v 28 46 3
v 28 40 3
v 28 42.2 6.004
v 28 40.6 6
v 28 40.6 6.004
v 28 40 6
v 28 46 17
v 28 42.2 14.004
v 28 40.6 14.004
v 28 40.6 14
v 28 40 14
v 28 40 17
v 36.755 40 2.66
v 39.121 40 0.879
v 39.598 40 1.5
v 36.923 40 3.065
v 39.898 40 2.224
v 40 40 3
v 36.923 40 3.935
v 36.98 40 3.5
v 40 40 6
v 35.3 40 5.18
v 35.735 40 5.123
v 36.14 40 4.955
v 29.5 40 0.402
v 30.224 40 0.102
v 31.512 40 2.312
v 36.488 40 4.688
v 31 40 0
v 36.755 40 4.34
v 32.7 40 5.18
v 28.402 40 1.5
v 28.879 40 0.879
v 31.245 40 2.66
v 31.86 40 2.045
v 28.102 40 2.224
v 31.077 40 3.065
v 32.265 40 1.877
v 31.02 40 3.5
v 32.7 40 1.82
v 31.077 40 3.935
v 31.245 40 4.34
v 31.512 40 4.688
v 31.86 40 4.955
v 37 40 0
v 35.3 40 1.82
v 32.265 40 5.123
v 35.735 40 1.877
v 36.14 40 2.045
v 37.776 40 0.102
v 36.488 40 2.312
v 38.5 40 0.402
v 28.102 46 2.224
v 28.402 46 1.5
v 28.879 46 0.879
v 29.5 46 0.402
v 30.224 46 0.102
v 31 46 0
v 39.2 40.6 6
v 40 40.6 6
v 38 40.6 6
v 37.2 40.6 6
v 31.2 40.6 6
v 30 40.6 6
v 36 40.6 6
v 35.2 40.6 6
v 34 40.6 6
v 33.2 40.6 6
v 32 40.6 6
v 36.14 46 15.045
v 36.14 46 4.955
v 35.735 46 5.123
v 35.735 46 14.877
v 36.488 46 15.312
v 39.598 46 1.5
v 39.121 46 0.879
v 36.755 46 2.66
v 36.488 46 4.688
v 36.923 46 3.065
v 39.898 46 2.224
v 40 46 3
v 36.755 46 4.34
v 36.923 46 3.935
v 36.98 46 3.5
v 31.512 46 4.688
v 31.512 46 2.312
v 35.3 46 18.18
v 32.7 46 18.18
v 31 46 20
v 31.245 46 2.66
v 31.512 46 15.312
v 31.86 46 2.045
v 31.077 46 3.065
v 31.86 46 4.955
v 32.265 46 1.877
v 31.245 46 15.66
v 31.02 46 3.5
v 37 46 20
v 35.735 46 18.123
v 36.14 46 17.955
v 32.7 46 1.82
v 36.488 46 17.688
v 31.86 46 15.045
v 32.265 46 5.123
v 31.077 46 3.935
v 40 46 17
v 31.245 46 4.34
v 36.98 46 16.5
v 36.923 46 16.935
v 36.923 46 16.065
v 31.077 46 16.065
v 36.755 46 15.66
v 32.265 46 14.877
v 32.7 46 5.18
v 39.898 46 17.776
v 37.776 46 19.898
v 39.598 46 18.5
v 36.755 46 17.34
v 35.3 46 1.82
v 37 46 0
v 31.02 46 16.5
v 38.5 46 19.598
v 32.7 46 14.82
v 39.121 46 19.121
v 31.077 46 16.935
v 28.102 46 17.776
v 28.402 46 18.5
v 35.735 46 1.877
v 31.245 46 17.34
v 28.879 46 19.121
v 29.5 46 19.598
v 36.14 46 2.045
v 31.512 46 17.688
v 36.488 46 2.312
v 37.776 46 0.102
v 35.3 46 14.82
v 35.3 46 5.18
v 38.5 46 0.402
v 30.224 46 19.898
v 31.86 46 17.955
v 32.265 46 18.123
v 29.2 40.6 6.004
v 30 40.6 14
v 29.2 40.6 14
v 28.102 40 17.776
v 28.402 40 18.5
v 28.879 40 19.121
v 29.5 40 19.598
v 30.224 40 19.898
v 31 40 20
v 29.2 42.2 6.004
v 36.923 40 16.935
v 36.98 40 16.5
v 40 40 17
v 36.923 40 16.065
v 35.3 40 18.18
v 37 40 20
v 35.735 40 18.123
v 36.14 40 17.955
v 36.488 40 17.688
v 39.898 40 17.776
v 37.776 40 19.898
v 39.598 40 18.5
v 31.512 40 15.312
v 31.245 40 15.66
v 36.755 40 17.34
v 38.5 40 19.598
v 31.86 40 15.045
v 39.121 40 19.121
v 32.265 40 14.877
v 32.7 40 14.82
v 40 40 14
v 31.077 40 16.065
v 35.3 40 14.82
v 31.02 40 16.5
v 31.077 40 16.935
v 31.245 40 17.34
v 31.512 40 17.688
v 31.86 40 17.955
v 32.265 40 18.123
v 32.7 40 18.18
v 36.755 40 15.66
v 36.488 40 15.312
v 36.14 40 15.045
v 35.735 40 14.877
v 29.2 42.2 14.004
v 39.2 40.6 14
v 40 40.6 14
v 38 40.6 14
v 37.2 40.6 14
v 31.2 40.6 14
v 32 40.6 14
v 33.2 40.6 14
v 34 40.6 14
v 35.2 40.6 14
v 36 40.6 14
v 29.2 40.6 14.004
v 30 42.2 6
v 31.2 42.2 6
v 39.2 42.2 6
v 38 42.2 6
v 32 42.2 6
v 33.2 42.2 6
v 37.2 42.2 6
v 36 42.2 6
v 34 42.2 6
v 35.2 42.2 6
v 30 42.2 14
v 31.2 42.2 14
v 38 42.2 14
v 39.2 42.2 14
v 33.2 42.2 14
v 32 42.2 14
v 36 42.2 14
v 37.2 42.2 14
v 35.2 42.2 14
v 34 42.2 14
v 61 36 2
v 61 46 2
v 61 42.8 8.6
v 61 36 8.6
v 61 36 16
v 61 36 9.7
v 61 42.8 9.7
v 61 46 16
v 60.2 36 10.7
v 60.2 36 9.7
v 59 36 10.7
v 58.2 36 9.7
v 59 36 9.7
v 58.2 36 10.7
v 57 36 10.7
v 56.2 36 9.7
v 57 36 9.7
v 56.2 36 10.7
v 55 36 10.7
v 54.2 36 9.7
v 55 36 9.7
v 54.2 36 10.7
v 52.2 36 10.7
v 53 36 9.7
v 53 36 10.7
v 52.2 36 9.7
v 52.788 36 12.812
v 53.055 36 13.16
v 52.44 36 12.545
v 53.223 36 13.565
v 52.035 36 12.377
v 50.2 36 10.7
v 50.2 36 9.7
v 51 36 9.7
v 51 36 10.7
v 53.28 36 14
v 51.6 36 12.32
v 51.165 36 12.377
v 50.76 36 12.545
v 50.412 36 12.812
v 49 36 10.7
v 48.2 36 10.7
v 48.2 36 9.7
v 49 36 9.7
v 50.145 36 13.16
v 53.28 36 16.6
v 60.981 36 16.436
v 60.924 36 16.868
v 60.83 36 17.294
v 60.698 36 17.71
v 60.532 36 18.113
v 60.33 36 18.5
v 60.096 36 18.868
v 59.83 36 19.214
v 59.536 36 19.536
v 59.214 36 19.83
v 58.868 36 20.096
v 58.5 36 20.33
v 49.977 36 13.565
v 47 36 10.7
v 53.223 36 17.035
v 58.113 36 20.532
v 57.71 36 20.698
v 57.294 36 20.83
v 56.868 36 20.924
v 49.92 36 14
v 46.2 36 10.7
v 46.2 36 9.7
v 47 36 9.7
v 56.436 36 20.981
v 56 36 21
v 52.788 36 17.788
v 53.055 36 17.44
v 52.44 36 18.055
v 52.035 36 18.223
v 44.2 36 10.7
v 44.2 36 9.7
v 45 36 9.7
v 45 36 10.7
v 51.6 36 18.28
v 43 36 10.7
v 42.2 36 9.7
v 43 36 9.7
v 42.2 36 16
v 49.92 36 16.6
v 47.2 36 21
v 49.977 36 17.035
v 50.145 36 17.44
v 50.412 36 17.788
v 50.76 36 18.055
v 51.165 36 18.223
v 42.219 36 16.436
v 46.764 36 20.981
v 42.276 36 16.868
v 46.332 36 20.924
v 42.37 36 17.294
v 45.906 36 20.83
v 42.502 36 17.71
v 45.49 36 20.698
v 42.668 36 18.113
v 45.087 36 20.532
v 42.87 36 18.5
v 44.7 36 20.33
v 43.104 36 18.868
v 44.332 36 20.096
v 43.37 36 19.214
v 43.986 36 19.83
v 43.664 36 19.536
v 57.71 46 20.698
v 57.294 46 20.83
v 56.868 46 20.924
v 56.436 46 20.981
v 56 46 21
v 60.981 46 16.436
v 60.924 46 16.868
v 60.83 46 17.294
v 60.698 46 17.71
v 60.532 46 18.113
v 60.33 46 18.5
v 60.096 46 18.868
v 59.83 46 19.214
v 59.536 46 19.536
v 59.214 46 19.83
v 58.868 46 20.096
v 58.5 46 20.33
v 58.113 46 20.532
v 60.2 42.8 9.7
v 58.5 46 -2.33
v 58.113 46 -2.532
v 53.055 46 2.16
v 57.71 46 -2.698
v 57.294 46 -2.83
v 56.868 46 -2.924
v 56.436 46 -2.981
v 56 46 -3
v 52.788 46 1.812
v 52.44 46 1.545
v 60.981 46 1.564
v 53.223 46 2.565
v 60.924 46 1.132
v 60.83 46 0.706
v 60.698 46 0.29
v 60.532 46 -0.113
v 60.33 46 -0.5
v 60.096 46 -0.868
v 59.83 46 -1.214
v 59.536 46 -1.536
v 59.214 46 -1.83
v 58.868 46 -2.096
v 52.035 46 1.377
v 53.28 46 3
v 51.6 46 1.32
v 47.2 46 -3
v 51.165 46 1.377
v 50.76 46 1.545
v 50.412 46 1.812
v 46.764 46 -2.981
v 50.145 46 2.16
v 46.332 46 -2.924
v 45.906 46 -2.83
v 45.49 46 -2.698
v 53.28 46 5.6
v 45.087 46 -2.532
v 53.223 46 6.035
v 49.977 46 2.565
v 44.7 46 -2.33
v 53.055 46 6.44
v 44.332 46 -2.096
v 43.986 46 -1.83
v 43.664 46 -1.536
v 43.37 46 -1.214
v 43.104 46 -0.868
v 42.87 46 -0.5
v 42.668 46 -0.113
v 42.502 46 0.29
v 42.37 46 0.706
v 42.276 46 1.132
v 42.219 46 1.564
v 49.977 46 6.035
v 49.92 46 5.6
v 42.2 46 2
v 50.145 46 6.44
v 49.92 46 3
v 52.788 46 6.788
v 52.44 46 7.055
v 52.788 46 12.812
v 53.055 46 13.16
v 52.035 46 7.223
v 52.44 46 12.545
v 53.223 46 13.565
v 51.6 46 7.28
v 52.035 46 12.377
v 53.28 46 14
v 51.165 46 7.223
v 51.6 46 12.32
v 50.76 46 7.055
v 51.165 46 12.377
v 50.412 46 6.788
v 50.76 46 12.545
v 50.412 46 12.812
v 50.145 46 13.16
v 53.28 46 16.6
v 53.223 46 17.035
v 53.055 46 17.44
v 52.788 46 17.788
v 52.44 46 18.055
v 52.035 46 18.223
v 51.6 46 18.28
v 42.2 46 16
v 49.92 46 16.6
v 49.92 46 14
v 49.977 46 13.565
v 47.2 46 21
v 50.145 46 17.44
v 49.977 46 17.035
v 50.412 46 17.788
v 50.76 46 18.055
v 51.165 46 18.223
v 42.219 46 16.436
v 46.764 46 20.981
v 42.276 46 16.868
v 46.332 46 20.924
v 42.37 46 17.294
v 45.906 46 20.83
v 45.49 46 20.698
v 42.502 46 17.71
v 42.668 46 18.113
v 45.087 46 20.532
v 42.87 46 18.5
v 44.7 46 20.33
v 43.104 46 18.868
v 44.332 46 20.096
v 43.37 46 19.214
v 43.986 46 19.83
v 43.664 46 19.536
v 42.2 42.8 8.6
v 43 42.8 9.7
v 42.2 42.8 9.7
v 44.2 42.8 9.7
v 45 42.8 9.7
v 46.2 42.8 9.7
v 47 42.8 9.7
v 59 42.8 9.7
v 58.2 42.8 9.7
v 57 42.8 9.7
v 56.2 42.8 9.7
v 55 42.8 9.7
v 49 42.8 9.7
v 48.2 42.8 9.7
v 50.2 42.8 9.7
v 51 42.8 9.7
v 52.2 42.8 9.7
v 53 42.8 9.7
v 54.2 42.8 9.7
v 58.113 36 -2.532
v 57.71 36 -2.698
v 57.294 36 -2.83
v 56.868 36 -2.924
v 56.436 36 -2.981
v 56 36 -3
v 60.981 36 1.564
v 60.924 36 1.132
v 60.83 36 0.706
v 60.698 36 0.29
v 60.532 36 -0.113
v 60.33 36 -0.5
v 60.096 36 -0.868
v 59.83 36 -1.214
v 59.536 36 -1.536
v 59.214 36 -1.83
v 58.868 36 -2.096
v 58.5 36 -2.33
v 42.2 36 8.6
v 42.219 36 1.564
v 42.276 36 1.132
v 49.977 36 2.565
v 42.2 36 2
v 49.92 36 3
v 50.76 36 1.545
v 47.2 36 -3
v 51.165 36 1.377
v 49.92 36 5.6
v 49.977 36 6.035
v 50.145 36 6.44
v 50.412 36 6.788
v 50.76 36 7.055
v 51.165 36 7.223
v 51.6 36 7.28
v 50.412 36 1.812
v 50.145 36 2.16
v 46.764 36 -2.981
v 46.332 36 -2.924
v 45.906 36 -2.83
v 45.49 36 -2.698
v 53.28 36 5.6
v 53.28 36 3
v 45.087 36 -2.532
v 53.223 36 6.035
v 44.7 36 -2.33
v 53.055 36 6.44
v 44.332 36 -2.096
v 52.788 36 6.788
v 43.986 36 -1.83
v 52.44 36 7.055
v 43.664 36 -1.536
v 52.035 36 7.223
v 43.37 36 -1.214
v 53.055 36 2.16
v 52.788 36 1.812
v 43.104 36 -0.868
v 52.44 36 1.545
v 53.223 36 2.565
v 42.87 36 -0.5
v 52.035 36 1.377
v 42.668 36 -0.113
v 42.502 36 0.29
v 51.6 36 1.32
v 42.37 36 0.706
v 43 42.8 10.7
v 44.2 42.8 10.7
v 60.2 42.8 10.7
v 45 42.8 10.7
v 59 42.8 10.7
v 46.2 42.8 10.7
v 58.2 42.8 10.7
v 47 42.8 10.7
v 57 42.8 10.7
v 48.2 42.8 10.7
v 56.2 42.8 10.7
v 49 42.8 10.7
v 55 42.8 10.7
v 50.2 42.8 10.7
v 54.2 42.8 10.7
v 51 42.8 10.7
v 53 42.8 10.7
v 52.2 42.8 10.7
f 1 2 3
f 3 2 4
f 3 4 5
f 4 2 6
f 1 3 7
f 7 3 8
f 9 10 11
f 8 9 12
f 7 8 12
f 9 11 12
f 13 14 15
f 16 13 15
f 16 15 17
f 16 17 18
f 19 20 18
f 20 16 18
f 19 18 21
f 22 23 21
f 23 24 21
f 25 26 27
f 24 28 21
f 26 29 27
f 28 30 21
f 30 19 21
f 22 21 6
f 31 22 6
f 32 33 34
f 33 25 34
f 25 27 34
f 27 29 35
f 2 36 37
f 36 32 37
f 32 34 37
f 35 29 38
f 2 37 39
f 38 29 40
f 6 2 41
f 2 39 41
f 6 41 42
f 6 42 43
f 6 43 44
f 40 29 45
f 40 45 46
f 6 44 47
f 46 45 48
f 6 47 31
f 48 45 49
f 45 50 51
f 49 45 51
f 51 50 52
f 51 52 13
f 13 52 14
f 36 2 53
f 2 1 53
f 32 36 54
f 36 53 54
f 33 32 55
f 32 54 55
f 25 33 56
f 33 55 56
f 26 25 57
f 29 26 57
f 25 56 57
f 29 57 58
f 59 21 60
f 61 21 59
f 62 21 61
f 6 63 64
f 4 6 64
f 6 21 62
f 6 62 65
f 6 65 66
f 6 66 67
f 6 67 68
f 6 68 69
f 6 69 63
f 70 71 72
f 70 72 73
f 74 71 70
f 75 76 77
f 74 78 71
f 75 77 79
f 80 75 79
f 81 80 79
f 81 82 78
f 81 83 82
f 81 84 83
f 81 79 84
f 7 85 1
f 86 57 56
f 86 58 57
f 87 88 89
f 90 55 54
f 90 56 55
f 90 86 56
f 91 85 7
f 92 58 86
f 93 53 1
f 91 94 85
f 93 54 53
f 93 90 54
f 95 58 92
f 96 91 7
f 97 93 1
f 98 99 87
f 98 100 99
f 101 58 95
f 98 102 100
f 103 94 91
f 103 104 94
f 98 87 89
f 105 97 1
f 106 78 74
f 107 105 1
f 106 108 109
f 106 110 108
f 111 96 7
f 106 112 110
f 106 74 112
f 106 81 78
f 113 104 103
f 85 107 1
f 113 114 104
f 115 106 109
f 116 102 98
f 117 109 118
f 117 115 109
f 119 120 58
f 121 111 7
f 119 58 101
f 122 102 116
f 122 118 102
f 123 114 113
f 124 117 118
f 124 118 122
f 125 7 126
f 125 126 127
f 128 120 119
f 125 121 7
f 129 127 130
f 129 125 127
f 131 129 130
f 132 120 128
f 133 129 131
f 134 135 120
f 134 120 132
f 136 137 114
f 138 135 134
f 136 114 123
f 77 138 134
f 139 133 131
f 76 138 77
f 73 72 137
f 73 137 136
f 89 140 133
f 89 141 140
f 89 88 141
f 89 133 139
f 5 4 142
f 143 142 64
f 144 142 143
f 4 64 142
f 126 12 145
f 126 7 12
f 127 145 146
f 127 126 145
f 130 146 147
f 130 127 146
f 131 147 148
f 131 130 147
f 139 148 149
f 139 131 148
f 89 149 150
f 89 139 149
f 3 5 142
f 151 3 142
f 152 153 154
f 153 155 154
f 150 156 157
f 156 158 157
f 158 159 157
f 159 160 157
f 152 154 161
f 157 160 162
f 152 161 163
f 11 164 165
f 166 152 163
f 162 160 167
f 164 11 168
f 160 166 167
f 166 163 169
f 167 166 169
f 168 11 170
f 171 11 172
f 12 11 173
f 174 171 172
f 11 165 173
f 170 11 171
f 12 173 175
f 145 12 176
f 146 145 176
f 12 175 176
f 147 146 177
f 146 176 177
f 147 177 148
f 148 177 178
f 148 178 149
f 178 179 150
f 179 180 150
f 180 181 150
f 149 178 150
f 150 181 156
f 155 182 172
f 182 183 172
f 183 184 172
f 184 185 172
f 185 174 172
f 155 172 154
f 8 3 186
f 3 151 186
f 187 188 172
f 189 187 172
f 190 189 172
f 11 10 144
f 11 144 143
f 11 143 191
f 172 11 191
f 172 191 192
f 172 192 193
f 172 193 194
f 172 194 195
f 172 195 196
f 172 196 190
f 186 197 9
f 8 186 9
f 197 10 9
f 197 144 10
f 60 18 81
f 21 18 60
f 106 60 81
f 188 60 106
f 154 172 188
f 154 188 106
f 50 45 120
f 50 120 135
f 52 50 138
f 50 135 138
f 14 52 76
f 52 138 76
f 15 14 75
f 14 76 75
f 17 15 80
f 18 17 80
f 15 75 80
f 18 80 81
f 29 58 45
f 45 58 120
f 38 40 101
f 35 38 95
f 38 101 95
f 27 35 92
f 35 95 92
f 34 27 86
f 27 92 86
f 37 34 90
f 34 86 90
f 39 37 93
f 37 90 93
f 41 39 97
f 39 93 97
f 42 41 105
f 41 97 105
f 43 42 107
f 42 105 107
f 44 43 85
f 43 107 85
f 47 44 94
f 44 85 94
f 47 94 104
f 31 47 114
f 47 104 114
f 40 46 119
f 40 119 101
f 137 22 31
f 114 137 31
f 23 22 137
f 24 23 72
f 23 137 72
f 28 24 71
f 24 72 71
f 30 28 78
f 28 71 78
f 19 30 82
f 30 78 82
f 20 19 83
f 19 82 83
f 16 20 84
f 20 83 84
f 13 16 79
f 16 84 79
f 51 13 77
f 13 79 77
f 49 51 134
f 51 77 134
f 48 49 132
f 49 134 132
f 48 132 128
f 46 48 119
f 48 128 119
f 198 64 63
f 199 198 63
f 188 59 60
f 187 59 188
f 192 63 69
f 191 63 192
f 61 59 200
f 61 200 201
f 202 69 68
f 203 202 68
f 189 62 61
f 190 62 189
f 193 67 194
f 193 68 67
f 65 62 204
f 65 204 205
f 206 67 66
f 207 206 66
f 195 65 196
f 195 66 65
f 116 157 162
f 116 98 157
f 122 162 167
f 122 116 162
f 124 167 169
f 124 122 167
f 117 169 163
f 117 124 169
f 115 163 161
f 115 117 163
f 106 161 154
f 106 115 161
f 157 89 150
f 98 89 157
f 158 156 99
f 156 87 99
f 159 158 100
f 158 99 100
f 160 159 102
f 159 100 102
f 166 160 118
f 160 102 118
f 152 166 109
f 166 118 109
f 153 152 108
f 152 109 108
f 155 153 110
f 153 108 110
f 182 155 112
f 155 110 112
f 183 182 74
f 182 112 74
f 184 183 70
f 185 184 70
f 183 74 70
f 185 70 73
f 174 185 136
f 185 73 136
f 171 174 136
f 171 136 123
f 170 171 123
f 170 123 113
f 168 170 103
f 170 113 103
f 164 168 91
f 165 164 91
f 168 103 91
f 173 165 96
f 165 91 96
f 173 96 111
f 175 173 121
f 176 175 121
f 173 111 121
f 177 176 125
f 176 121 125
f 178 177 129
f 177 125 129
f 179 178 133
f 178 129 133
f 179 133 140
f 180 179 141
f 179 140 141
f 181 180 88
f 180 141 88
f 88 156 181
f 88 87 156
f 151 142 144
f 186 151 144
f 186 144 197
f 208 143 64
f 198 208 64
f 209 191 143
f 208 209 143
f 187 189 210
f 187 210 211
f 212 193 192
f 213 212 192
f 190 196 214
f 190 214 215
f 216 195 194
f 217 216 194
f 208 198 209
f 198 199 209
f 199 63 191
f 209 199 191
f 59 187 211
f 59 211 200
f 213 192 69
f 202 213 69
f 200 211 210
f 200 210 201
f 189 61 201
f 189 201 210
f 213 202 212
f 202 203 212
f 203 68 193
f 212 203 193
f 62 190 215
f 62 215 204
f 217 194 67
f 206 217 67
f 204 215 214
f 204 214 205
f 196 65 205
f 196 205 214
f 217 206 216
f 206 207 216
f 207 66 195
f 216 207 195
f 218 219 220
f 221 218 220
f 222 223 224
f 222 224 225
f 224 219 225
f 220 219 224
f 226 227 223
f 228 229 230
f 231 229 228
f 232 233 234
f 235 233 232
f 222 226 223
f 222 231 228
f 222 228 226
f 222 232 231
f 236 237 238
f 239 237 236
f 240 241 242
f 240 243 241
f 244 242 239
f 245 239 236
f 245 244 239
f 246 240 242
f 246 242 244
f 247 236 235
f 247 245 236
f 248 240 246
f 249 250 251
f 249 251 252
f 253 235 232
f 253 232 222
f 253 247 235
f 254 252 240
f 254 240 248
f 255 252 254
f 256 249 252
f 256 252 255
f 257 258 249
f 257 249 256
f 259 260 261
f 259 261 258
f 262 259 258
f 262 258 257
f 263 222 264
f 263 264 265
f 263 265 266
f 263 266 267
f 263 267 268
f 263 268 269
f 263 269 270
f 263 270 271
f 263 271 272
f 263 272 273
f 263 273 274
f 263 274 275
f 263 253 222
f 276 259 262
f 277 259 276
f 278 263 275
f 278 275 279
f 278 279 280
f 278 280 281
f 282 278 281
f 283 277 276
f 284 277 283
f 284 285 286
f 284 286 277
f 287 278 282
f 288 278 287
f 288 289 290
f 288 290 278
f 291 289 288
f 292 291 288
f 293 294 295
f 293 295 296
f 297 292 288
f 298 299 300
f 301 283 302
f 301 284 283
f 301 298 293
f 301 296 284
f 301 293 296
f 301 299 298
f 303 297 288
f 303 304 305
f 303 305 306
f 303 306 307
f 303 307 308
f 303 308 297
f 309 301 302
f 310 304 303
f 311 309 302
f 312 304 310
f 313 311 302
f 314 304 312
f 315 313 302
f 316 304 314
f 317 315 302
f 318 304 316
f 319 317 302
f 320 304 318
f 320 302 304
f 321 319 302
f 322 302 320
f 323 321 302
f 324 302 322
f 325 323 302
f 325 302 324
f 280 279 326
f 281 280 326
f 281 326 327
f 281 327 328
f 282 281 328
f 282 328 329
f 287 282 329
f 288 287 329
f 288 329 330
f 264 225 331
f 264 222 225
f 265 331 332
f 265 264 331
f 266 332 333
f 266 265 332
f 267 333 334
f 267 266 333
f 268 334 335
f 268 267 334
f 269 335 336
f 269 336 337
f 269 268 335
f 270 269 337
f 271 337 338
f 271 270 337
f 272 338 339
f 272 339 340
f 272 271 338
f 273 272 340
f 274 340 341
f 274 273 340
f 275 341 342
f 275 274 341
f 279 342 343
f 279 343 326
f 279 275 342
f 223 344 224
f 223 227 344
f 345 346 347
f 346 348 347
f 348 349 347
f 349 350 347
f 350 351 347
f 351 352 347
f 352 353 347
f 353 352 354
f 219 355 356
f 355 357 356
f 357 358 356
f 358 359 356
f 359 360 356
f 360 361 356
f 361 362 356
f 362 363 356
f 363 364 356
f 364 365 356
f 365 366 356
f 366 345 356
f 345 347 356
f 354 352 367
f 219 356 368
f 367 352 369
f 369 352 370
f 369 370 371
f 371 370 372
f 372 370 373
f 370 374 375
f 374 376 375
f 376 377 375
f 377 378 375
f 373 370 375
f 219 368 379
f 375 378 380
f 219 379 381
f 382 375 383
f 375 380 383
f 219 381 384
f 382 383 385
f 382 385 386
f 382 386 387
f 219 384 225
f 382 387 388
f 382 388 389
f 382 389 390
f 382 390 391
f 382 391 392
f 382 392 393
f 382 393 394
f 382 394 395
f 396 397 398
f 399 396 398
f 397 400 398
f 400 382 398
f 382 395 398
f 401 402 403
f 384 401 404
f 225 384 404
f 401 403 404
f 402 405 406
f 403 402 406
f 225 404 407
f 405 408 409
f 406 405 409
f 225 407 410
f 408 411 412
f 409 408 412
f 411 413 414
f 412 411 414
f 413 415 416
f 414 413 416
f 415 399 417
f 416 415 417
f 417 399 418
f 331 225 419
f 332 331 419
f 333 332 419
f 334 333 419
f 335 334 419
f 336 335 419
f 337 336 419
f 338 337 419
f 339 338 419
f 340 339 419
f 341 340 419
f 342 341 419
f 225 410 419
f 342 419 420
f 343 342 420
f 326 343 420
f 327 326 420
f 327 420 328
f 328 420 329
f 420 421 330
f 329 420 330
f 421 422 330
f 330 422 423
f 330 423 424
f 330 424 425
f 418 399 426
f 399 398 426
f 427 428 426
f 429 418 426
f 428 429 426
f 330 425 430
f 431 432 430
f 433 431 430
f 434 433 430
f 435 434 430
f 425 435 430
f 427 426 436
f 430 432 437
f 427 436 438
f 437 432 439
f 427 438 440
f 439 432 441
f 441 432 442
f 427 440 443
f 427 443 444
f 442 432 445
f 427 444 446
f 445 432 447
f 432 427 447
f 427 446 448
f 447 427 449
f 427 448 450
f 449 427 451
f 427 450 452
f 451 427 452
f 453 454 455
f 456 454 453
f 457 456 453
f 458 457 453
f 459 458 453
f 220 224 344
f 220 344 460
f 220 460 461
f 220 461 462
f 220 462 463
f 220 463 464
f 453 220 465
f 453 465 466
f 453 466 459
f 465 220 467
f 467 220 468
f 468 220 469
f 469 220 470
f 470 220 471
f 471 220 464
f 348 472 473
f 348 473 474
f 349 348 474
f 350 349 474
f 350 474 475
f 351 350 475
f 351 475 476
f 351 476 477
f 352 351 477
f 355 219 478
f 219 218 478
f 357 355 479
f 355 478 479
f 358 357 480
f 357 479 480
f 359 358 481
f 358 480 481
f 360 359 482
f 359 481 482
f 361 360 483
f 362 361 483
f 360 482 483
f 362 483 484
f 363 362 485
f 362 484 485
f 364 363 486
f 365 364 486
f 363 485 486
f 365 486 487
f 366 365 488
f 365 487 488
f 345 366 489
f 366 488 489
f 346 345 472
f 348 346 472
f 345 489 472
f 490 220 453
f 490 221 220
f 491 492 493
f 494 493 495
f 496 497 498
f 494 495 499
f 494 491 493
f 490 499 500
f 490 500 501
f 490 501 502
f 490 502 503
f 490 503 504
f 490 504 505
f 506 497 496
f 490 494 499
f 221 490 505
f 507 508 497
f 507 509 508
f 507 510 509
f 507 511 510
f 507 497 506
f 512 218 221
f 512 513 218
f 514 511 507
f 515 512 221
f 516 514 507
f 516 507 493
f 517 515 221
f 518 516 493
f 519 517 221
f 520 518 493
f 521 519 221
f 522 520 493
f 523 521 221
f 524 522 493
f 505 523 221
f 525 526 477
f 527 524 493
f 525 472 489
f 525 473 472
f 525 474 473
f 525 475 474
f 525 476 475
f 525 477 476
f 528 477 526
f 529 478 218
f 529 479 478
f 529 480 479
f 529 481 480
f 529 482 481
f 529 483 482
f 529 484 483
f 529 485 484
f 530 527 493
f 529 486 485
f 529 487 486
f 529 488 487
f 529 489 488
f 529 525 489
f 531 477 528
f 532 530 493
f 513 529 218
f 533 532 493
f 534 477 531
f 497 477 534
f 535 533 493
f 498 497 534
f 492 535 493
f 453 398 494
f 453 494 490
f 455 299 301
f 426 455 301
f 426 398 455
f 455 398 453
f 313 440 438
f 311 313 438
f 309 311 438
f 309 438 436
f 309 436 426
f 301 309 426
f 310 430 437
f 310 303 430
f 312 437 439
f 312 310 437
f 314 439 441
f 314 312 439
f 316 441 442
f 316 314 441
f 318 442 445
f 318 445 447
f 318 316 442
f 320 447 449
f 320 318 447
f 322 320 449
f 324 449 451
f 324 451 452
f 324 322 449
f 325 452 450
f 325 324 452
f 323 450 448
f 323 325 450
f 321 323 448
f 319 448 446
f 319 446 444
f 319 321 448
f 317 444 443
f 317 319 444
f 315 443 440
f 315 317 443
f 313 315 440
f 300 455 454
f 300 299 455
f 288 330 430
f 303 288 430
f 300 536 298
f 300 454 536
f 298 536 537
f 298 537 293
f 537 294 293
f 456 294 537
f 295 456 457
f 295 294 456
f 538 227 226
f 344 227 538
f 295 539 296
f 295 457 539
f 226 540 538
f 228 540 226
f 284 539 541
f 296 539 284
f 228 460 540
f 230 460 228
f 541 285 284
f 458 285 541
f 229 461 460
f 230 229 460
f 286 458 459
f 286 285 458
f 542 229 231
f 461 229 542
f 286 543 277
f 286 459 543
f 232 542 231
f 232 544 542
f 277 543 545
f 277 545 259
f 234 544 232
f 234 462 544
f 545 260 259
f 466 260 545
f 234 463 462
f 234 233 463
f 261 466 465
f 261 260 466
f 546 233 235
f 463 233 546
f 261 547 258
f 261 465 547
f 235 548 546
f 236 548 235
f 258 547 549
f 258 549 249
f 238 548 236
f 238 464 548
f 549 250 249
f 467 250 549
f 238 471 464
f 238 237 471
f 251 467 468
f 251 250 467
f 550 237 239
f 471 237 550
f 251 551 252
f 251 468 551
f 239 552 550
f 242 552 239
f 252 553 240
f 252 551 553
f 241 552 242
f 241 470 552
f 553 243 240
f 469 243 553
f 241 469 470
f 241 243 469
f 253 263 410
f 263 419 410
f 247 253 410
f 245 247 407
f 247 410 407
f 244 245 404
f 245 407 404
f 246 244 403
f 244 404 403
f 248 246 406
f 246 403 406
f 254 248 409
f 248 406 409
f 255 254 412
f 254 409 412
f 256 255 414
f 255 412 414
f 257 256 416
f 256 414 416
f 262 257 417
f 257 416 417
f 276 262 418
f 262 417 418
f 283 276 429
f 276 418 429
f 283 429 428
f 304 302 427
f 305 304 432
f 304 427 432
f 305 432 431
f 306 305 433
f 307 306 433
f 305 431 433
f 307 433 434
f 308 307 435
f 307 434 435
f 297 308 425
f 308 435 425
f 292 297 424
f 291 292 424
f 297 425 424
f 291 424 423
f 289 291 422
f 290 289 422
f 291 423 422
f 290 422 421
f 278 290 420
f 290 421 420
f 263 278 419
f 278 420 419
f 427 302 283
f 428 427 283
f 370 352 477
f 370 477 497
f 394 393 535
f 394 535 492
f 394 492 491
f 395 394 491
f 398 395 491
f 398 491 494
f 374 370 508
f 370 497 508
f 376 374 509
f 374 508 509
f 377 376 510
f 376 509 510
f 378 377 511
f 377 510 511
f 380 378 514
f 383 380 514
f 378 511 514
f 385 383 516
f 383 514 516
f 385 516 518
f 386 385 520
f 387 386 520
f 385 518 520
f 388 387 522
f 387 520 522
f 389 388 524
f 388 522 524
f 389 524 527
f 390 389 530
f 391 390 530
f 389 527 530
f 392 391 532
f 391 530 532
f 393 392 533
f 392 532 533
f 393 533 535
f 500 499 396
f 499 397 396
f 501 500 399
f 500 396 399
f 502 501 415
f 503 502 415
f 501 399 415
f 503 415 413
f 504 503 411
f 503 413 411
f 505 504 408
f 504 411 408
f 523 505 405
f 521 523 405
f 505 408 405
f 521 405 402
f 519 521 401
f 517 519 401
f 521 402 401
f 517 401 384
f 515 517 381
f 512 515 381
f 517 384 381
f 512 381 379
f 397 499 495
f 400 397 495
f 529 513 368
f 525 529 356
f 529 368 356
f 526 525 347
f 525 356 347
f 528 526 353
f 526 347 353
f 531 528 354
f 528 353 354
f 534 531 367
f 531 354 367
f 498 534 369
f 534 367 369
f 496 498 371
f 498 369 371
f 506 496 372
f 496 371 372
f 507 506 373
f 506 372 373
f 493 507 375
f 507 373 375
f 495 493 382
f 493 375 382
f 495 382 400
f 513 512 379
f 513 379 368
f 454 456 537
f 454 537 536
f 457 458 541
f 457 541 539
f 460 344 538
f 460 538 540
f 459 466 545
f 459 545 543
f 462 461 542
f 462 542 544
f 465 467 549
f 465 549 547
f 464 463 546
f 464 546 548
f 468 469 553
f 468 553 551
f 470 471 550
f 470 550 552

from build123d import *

# Parameters (mm, degrees)
BOX002_W        = 12
BOX002_H        = 6
BOX002_DEPTH    = 20
POCKET015_DEPTH = 6.001
SKETCH013_W     = 0.6
SKETCH013_H     = 8
POCKET016_DEPTH = 12.001
SKETCH011_W     = 1.2
SKETCH011_H     = 8
POCKET017_DEPTH = 1.6
FILLET006_R     = 3
BOX003_W        = 18.8
BOX003_H        = 10
BOX003_DEPTH    = 24
POCKET_DEPTH    = 10.001
SKETCH014_W     = 20.407059
SKETCH014_H     = 1.1
POCKET013_DEPTH = 6.8
SKETCH015_W     = 1.2
SKETCH015_H     = 7
POCKET014_DEPTH = 1
FILLET_R        = 5


with BuildPart() as fillet006:
    # Box002 → Box002 (new body)
    with BuildSketch(Plane(origin=(28, 40, 0), x_dir=(1, 0, 0), z_dir=(0, 0, 1))):
        with Locations((6, 3)):
            Rectangle(BOX002_W, BOX002_H)
    extrude(amount=BOX002_DEPTH)

    # Sketch012 → Pocket015 (cut, through all)
    with BuildSketch(Plane(origin=(28, 46, 0), x_dir=(-1, 0, 0), z_dir=(0, 1, 0))):
        with BuildLine():
            ThreePointArc((-7.3, 18.18), (-8.98, 16.5), (-7.3, 14.82))
            Line((-7.3, 14.82), (-4.7, 14.82))
            ThreePointArc((-4.7, 14.82), (-3.02, 16.5), (-4.7, 18.18))
            Line((-7.3, 18.18), (-4.7, 18.18))
        make_face()
        with BuildLine():
            ThreePointArc((-7.3, 5.18), (-8.98, 3.5), (-7.3, 1.82))
            Line((-7.3, 1.82), (-4.7, 1.82))
            ThreePointArc((-4.7, 1.82), (-3.02, 3.5), (-4.7, 5.18))
            Line((-7.3, 5.18), (-4.7, 5.18))
        make_face()
    extrude(amount=-POCKET015_DEPTH, mode=Mode.SUBTRACT)

    # Sketch013 → Pocket016 (cut, through all)
    with BuildSketch(Plane(origin=(28, 40, 0), x_dir=(0, -1, 0), z_dir=(-1, 0, 0))):
        with Locations((-0.3, 10)):
            Rectangle(SKETCH013_W, SKETCH013_H)
    extrude(amount=-POCKET016_DEPTH, mode=Mode.SUBTRACT)

    # Sketch011 → Pocket017 (cut)
    with BuildSketch(Plane(origin=(28, 40.6, 0), x_dir=(1, 0, 0), z_dir=(0, -1, 0))):
        with Locations((6.599989, 10)):
            Rectangle(SKETCH011_W, SKETCH011_H)
        with Locations((4.599989, 10)):
            Rectangle(SKETCH011_W, SKETCH011_H)
        with Locations((2.599989, 10)):
            Rectangle(SKETCH011_W, SKETCH011_H)
        with Locations((0.6, 10.00427)):
            Rectangle(SKETCH011_W, SKETCH011_H)
        with Locations((8.599989, 10)):
            Rectangle(SKETCH011_W, SKETCH011_H)
        with Locations((10.599989, 10)):
            Rectangle(SKETCH011_W, SKETCH011_H)
    extrude(amount=-POCKET017_DEPTH, mode=Mode.SUBTRACT)

    # Fillet006
    fillet006_edges = [fillet006.edges().sort_by_distance(p)[0] for p in [
        (28, 43, 20),
        (28, 43, 0),
        (40, 43, 20),
        (40, 43, 0),
    ]]
    fillet(fillet006_edges, radius=FILLET006_R)


with BuildPart() as fillet_body:
    # Box003 → Box003 (new body)
    with BuildSketch(Plane(origin=(61, 46, -3), x_dir=(-1, 0, 0), z_dir=(0, 0, 1))):
        with Locations((9.4, 5)):
            Rectangle(BOX003_W, BOX003_H)
    extrude(amount=BOX003_DEPTH)

    # Sketch → Pocket (cut, through all)
    with BuildSketch(Plane(origin=(61, 46, -3), x_dir=(-1, 0, 0), z_dir=(0, 1, 0))):
        with BuildLine():
            ThreePointArc((11.08, 19.6), (9.4, 21.28), (7.72, 19.6))
            Line((7.72, 19.6), (7.72, 17))
            ThreePointArc((7.72, 17), (9.4, 15.32), (11.08, 17))
            Line((11.08, 19.6), (11.08, 17))
        make_face()
        with BuildLine():
            ThreePointArc((11.08, 8.6), (9.4, 10.28), (7.72, 8.6))
            Line((7.72, 8.6), (7.72, 6))
            ThreePointArc((7.72, 6), (9.4, 4.32), (11.08, 6))
            Line((11.08, 8.6), (11.08, 6))
        make_face()
    extrude(amount=-POCKET_DEPTH, mode=Mode.SUBTRACT)

    # Sketch014 → Pocket013 (cut)
    with BuildSketch(Plane(origin=(61, 36, -3), x_dir=(1, 0, 0), z_dir=(0, -1, 0))):
        with Locations((-9.299994, 12.15)):
            Rectangle(SKETCH014_W, SKETCH014_H)
    extrude(amount=-POCKET013_DEPTH, mode=Mode.SUBTRACT)

    # Sketch015 → Pocket014 (cut)
    with BuildSketch(Plane(origin=(61, 46, 9.7), x_dir=(-1, 0, 0), z_dir=(0, 0, -1))):
        with Locations((1.4, -6.7)):
            Rectangle(SKETCH015_W, SKETCH015_H)
        with Locations((3.4, -6.7)):
            Rectangle(SKETCH015_W, SKETCH015_H)
        with Locations((5.4, -6.7)):
            Rectangle(SKETCH015_W, SKETCH015_H)
        with Locations((7.4, -6.7)):
            Rectangle(SKETCH015_W, SKETCH015_H)
        with Locations((9.4, -6.7)):
            Rectangle(SKETCH015_W, SKETCH015_H)
        with Locations((11.4, -6.7)):
            Rectangle(SKETCH015_W, SKETCH015_H)
        with Locations((13.4, -6.7)):
            Rectangle(SKETCH015_W, SKETCH015_H)
        with Locations((15.4, -6.7)):
            Rectangle(SKETCH015_W, SKETCH015_H)
        with Locations((17.4, -6.7)):
            Rectangle(SKETCH015_W, SKETCH015_H)
    extrude(amount=-POCKET014_DEPTH, mode=Mode.SUBTRACT)

    # Fillet
    fillet_edges = [fillet_body.edges().sort_by_distance(p)[0] for p in [
        (42.2, 41, 21),
        (61, 41, 21),
        (61, 41, -3),
        (42.2, 41, -3),
    ]]
    fillet(fillet_edges, radius=FILLET_R)


solid = Compound([fillet006.part, fillet_body.part])
